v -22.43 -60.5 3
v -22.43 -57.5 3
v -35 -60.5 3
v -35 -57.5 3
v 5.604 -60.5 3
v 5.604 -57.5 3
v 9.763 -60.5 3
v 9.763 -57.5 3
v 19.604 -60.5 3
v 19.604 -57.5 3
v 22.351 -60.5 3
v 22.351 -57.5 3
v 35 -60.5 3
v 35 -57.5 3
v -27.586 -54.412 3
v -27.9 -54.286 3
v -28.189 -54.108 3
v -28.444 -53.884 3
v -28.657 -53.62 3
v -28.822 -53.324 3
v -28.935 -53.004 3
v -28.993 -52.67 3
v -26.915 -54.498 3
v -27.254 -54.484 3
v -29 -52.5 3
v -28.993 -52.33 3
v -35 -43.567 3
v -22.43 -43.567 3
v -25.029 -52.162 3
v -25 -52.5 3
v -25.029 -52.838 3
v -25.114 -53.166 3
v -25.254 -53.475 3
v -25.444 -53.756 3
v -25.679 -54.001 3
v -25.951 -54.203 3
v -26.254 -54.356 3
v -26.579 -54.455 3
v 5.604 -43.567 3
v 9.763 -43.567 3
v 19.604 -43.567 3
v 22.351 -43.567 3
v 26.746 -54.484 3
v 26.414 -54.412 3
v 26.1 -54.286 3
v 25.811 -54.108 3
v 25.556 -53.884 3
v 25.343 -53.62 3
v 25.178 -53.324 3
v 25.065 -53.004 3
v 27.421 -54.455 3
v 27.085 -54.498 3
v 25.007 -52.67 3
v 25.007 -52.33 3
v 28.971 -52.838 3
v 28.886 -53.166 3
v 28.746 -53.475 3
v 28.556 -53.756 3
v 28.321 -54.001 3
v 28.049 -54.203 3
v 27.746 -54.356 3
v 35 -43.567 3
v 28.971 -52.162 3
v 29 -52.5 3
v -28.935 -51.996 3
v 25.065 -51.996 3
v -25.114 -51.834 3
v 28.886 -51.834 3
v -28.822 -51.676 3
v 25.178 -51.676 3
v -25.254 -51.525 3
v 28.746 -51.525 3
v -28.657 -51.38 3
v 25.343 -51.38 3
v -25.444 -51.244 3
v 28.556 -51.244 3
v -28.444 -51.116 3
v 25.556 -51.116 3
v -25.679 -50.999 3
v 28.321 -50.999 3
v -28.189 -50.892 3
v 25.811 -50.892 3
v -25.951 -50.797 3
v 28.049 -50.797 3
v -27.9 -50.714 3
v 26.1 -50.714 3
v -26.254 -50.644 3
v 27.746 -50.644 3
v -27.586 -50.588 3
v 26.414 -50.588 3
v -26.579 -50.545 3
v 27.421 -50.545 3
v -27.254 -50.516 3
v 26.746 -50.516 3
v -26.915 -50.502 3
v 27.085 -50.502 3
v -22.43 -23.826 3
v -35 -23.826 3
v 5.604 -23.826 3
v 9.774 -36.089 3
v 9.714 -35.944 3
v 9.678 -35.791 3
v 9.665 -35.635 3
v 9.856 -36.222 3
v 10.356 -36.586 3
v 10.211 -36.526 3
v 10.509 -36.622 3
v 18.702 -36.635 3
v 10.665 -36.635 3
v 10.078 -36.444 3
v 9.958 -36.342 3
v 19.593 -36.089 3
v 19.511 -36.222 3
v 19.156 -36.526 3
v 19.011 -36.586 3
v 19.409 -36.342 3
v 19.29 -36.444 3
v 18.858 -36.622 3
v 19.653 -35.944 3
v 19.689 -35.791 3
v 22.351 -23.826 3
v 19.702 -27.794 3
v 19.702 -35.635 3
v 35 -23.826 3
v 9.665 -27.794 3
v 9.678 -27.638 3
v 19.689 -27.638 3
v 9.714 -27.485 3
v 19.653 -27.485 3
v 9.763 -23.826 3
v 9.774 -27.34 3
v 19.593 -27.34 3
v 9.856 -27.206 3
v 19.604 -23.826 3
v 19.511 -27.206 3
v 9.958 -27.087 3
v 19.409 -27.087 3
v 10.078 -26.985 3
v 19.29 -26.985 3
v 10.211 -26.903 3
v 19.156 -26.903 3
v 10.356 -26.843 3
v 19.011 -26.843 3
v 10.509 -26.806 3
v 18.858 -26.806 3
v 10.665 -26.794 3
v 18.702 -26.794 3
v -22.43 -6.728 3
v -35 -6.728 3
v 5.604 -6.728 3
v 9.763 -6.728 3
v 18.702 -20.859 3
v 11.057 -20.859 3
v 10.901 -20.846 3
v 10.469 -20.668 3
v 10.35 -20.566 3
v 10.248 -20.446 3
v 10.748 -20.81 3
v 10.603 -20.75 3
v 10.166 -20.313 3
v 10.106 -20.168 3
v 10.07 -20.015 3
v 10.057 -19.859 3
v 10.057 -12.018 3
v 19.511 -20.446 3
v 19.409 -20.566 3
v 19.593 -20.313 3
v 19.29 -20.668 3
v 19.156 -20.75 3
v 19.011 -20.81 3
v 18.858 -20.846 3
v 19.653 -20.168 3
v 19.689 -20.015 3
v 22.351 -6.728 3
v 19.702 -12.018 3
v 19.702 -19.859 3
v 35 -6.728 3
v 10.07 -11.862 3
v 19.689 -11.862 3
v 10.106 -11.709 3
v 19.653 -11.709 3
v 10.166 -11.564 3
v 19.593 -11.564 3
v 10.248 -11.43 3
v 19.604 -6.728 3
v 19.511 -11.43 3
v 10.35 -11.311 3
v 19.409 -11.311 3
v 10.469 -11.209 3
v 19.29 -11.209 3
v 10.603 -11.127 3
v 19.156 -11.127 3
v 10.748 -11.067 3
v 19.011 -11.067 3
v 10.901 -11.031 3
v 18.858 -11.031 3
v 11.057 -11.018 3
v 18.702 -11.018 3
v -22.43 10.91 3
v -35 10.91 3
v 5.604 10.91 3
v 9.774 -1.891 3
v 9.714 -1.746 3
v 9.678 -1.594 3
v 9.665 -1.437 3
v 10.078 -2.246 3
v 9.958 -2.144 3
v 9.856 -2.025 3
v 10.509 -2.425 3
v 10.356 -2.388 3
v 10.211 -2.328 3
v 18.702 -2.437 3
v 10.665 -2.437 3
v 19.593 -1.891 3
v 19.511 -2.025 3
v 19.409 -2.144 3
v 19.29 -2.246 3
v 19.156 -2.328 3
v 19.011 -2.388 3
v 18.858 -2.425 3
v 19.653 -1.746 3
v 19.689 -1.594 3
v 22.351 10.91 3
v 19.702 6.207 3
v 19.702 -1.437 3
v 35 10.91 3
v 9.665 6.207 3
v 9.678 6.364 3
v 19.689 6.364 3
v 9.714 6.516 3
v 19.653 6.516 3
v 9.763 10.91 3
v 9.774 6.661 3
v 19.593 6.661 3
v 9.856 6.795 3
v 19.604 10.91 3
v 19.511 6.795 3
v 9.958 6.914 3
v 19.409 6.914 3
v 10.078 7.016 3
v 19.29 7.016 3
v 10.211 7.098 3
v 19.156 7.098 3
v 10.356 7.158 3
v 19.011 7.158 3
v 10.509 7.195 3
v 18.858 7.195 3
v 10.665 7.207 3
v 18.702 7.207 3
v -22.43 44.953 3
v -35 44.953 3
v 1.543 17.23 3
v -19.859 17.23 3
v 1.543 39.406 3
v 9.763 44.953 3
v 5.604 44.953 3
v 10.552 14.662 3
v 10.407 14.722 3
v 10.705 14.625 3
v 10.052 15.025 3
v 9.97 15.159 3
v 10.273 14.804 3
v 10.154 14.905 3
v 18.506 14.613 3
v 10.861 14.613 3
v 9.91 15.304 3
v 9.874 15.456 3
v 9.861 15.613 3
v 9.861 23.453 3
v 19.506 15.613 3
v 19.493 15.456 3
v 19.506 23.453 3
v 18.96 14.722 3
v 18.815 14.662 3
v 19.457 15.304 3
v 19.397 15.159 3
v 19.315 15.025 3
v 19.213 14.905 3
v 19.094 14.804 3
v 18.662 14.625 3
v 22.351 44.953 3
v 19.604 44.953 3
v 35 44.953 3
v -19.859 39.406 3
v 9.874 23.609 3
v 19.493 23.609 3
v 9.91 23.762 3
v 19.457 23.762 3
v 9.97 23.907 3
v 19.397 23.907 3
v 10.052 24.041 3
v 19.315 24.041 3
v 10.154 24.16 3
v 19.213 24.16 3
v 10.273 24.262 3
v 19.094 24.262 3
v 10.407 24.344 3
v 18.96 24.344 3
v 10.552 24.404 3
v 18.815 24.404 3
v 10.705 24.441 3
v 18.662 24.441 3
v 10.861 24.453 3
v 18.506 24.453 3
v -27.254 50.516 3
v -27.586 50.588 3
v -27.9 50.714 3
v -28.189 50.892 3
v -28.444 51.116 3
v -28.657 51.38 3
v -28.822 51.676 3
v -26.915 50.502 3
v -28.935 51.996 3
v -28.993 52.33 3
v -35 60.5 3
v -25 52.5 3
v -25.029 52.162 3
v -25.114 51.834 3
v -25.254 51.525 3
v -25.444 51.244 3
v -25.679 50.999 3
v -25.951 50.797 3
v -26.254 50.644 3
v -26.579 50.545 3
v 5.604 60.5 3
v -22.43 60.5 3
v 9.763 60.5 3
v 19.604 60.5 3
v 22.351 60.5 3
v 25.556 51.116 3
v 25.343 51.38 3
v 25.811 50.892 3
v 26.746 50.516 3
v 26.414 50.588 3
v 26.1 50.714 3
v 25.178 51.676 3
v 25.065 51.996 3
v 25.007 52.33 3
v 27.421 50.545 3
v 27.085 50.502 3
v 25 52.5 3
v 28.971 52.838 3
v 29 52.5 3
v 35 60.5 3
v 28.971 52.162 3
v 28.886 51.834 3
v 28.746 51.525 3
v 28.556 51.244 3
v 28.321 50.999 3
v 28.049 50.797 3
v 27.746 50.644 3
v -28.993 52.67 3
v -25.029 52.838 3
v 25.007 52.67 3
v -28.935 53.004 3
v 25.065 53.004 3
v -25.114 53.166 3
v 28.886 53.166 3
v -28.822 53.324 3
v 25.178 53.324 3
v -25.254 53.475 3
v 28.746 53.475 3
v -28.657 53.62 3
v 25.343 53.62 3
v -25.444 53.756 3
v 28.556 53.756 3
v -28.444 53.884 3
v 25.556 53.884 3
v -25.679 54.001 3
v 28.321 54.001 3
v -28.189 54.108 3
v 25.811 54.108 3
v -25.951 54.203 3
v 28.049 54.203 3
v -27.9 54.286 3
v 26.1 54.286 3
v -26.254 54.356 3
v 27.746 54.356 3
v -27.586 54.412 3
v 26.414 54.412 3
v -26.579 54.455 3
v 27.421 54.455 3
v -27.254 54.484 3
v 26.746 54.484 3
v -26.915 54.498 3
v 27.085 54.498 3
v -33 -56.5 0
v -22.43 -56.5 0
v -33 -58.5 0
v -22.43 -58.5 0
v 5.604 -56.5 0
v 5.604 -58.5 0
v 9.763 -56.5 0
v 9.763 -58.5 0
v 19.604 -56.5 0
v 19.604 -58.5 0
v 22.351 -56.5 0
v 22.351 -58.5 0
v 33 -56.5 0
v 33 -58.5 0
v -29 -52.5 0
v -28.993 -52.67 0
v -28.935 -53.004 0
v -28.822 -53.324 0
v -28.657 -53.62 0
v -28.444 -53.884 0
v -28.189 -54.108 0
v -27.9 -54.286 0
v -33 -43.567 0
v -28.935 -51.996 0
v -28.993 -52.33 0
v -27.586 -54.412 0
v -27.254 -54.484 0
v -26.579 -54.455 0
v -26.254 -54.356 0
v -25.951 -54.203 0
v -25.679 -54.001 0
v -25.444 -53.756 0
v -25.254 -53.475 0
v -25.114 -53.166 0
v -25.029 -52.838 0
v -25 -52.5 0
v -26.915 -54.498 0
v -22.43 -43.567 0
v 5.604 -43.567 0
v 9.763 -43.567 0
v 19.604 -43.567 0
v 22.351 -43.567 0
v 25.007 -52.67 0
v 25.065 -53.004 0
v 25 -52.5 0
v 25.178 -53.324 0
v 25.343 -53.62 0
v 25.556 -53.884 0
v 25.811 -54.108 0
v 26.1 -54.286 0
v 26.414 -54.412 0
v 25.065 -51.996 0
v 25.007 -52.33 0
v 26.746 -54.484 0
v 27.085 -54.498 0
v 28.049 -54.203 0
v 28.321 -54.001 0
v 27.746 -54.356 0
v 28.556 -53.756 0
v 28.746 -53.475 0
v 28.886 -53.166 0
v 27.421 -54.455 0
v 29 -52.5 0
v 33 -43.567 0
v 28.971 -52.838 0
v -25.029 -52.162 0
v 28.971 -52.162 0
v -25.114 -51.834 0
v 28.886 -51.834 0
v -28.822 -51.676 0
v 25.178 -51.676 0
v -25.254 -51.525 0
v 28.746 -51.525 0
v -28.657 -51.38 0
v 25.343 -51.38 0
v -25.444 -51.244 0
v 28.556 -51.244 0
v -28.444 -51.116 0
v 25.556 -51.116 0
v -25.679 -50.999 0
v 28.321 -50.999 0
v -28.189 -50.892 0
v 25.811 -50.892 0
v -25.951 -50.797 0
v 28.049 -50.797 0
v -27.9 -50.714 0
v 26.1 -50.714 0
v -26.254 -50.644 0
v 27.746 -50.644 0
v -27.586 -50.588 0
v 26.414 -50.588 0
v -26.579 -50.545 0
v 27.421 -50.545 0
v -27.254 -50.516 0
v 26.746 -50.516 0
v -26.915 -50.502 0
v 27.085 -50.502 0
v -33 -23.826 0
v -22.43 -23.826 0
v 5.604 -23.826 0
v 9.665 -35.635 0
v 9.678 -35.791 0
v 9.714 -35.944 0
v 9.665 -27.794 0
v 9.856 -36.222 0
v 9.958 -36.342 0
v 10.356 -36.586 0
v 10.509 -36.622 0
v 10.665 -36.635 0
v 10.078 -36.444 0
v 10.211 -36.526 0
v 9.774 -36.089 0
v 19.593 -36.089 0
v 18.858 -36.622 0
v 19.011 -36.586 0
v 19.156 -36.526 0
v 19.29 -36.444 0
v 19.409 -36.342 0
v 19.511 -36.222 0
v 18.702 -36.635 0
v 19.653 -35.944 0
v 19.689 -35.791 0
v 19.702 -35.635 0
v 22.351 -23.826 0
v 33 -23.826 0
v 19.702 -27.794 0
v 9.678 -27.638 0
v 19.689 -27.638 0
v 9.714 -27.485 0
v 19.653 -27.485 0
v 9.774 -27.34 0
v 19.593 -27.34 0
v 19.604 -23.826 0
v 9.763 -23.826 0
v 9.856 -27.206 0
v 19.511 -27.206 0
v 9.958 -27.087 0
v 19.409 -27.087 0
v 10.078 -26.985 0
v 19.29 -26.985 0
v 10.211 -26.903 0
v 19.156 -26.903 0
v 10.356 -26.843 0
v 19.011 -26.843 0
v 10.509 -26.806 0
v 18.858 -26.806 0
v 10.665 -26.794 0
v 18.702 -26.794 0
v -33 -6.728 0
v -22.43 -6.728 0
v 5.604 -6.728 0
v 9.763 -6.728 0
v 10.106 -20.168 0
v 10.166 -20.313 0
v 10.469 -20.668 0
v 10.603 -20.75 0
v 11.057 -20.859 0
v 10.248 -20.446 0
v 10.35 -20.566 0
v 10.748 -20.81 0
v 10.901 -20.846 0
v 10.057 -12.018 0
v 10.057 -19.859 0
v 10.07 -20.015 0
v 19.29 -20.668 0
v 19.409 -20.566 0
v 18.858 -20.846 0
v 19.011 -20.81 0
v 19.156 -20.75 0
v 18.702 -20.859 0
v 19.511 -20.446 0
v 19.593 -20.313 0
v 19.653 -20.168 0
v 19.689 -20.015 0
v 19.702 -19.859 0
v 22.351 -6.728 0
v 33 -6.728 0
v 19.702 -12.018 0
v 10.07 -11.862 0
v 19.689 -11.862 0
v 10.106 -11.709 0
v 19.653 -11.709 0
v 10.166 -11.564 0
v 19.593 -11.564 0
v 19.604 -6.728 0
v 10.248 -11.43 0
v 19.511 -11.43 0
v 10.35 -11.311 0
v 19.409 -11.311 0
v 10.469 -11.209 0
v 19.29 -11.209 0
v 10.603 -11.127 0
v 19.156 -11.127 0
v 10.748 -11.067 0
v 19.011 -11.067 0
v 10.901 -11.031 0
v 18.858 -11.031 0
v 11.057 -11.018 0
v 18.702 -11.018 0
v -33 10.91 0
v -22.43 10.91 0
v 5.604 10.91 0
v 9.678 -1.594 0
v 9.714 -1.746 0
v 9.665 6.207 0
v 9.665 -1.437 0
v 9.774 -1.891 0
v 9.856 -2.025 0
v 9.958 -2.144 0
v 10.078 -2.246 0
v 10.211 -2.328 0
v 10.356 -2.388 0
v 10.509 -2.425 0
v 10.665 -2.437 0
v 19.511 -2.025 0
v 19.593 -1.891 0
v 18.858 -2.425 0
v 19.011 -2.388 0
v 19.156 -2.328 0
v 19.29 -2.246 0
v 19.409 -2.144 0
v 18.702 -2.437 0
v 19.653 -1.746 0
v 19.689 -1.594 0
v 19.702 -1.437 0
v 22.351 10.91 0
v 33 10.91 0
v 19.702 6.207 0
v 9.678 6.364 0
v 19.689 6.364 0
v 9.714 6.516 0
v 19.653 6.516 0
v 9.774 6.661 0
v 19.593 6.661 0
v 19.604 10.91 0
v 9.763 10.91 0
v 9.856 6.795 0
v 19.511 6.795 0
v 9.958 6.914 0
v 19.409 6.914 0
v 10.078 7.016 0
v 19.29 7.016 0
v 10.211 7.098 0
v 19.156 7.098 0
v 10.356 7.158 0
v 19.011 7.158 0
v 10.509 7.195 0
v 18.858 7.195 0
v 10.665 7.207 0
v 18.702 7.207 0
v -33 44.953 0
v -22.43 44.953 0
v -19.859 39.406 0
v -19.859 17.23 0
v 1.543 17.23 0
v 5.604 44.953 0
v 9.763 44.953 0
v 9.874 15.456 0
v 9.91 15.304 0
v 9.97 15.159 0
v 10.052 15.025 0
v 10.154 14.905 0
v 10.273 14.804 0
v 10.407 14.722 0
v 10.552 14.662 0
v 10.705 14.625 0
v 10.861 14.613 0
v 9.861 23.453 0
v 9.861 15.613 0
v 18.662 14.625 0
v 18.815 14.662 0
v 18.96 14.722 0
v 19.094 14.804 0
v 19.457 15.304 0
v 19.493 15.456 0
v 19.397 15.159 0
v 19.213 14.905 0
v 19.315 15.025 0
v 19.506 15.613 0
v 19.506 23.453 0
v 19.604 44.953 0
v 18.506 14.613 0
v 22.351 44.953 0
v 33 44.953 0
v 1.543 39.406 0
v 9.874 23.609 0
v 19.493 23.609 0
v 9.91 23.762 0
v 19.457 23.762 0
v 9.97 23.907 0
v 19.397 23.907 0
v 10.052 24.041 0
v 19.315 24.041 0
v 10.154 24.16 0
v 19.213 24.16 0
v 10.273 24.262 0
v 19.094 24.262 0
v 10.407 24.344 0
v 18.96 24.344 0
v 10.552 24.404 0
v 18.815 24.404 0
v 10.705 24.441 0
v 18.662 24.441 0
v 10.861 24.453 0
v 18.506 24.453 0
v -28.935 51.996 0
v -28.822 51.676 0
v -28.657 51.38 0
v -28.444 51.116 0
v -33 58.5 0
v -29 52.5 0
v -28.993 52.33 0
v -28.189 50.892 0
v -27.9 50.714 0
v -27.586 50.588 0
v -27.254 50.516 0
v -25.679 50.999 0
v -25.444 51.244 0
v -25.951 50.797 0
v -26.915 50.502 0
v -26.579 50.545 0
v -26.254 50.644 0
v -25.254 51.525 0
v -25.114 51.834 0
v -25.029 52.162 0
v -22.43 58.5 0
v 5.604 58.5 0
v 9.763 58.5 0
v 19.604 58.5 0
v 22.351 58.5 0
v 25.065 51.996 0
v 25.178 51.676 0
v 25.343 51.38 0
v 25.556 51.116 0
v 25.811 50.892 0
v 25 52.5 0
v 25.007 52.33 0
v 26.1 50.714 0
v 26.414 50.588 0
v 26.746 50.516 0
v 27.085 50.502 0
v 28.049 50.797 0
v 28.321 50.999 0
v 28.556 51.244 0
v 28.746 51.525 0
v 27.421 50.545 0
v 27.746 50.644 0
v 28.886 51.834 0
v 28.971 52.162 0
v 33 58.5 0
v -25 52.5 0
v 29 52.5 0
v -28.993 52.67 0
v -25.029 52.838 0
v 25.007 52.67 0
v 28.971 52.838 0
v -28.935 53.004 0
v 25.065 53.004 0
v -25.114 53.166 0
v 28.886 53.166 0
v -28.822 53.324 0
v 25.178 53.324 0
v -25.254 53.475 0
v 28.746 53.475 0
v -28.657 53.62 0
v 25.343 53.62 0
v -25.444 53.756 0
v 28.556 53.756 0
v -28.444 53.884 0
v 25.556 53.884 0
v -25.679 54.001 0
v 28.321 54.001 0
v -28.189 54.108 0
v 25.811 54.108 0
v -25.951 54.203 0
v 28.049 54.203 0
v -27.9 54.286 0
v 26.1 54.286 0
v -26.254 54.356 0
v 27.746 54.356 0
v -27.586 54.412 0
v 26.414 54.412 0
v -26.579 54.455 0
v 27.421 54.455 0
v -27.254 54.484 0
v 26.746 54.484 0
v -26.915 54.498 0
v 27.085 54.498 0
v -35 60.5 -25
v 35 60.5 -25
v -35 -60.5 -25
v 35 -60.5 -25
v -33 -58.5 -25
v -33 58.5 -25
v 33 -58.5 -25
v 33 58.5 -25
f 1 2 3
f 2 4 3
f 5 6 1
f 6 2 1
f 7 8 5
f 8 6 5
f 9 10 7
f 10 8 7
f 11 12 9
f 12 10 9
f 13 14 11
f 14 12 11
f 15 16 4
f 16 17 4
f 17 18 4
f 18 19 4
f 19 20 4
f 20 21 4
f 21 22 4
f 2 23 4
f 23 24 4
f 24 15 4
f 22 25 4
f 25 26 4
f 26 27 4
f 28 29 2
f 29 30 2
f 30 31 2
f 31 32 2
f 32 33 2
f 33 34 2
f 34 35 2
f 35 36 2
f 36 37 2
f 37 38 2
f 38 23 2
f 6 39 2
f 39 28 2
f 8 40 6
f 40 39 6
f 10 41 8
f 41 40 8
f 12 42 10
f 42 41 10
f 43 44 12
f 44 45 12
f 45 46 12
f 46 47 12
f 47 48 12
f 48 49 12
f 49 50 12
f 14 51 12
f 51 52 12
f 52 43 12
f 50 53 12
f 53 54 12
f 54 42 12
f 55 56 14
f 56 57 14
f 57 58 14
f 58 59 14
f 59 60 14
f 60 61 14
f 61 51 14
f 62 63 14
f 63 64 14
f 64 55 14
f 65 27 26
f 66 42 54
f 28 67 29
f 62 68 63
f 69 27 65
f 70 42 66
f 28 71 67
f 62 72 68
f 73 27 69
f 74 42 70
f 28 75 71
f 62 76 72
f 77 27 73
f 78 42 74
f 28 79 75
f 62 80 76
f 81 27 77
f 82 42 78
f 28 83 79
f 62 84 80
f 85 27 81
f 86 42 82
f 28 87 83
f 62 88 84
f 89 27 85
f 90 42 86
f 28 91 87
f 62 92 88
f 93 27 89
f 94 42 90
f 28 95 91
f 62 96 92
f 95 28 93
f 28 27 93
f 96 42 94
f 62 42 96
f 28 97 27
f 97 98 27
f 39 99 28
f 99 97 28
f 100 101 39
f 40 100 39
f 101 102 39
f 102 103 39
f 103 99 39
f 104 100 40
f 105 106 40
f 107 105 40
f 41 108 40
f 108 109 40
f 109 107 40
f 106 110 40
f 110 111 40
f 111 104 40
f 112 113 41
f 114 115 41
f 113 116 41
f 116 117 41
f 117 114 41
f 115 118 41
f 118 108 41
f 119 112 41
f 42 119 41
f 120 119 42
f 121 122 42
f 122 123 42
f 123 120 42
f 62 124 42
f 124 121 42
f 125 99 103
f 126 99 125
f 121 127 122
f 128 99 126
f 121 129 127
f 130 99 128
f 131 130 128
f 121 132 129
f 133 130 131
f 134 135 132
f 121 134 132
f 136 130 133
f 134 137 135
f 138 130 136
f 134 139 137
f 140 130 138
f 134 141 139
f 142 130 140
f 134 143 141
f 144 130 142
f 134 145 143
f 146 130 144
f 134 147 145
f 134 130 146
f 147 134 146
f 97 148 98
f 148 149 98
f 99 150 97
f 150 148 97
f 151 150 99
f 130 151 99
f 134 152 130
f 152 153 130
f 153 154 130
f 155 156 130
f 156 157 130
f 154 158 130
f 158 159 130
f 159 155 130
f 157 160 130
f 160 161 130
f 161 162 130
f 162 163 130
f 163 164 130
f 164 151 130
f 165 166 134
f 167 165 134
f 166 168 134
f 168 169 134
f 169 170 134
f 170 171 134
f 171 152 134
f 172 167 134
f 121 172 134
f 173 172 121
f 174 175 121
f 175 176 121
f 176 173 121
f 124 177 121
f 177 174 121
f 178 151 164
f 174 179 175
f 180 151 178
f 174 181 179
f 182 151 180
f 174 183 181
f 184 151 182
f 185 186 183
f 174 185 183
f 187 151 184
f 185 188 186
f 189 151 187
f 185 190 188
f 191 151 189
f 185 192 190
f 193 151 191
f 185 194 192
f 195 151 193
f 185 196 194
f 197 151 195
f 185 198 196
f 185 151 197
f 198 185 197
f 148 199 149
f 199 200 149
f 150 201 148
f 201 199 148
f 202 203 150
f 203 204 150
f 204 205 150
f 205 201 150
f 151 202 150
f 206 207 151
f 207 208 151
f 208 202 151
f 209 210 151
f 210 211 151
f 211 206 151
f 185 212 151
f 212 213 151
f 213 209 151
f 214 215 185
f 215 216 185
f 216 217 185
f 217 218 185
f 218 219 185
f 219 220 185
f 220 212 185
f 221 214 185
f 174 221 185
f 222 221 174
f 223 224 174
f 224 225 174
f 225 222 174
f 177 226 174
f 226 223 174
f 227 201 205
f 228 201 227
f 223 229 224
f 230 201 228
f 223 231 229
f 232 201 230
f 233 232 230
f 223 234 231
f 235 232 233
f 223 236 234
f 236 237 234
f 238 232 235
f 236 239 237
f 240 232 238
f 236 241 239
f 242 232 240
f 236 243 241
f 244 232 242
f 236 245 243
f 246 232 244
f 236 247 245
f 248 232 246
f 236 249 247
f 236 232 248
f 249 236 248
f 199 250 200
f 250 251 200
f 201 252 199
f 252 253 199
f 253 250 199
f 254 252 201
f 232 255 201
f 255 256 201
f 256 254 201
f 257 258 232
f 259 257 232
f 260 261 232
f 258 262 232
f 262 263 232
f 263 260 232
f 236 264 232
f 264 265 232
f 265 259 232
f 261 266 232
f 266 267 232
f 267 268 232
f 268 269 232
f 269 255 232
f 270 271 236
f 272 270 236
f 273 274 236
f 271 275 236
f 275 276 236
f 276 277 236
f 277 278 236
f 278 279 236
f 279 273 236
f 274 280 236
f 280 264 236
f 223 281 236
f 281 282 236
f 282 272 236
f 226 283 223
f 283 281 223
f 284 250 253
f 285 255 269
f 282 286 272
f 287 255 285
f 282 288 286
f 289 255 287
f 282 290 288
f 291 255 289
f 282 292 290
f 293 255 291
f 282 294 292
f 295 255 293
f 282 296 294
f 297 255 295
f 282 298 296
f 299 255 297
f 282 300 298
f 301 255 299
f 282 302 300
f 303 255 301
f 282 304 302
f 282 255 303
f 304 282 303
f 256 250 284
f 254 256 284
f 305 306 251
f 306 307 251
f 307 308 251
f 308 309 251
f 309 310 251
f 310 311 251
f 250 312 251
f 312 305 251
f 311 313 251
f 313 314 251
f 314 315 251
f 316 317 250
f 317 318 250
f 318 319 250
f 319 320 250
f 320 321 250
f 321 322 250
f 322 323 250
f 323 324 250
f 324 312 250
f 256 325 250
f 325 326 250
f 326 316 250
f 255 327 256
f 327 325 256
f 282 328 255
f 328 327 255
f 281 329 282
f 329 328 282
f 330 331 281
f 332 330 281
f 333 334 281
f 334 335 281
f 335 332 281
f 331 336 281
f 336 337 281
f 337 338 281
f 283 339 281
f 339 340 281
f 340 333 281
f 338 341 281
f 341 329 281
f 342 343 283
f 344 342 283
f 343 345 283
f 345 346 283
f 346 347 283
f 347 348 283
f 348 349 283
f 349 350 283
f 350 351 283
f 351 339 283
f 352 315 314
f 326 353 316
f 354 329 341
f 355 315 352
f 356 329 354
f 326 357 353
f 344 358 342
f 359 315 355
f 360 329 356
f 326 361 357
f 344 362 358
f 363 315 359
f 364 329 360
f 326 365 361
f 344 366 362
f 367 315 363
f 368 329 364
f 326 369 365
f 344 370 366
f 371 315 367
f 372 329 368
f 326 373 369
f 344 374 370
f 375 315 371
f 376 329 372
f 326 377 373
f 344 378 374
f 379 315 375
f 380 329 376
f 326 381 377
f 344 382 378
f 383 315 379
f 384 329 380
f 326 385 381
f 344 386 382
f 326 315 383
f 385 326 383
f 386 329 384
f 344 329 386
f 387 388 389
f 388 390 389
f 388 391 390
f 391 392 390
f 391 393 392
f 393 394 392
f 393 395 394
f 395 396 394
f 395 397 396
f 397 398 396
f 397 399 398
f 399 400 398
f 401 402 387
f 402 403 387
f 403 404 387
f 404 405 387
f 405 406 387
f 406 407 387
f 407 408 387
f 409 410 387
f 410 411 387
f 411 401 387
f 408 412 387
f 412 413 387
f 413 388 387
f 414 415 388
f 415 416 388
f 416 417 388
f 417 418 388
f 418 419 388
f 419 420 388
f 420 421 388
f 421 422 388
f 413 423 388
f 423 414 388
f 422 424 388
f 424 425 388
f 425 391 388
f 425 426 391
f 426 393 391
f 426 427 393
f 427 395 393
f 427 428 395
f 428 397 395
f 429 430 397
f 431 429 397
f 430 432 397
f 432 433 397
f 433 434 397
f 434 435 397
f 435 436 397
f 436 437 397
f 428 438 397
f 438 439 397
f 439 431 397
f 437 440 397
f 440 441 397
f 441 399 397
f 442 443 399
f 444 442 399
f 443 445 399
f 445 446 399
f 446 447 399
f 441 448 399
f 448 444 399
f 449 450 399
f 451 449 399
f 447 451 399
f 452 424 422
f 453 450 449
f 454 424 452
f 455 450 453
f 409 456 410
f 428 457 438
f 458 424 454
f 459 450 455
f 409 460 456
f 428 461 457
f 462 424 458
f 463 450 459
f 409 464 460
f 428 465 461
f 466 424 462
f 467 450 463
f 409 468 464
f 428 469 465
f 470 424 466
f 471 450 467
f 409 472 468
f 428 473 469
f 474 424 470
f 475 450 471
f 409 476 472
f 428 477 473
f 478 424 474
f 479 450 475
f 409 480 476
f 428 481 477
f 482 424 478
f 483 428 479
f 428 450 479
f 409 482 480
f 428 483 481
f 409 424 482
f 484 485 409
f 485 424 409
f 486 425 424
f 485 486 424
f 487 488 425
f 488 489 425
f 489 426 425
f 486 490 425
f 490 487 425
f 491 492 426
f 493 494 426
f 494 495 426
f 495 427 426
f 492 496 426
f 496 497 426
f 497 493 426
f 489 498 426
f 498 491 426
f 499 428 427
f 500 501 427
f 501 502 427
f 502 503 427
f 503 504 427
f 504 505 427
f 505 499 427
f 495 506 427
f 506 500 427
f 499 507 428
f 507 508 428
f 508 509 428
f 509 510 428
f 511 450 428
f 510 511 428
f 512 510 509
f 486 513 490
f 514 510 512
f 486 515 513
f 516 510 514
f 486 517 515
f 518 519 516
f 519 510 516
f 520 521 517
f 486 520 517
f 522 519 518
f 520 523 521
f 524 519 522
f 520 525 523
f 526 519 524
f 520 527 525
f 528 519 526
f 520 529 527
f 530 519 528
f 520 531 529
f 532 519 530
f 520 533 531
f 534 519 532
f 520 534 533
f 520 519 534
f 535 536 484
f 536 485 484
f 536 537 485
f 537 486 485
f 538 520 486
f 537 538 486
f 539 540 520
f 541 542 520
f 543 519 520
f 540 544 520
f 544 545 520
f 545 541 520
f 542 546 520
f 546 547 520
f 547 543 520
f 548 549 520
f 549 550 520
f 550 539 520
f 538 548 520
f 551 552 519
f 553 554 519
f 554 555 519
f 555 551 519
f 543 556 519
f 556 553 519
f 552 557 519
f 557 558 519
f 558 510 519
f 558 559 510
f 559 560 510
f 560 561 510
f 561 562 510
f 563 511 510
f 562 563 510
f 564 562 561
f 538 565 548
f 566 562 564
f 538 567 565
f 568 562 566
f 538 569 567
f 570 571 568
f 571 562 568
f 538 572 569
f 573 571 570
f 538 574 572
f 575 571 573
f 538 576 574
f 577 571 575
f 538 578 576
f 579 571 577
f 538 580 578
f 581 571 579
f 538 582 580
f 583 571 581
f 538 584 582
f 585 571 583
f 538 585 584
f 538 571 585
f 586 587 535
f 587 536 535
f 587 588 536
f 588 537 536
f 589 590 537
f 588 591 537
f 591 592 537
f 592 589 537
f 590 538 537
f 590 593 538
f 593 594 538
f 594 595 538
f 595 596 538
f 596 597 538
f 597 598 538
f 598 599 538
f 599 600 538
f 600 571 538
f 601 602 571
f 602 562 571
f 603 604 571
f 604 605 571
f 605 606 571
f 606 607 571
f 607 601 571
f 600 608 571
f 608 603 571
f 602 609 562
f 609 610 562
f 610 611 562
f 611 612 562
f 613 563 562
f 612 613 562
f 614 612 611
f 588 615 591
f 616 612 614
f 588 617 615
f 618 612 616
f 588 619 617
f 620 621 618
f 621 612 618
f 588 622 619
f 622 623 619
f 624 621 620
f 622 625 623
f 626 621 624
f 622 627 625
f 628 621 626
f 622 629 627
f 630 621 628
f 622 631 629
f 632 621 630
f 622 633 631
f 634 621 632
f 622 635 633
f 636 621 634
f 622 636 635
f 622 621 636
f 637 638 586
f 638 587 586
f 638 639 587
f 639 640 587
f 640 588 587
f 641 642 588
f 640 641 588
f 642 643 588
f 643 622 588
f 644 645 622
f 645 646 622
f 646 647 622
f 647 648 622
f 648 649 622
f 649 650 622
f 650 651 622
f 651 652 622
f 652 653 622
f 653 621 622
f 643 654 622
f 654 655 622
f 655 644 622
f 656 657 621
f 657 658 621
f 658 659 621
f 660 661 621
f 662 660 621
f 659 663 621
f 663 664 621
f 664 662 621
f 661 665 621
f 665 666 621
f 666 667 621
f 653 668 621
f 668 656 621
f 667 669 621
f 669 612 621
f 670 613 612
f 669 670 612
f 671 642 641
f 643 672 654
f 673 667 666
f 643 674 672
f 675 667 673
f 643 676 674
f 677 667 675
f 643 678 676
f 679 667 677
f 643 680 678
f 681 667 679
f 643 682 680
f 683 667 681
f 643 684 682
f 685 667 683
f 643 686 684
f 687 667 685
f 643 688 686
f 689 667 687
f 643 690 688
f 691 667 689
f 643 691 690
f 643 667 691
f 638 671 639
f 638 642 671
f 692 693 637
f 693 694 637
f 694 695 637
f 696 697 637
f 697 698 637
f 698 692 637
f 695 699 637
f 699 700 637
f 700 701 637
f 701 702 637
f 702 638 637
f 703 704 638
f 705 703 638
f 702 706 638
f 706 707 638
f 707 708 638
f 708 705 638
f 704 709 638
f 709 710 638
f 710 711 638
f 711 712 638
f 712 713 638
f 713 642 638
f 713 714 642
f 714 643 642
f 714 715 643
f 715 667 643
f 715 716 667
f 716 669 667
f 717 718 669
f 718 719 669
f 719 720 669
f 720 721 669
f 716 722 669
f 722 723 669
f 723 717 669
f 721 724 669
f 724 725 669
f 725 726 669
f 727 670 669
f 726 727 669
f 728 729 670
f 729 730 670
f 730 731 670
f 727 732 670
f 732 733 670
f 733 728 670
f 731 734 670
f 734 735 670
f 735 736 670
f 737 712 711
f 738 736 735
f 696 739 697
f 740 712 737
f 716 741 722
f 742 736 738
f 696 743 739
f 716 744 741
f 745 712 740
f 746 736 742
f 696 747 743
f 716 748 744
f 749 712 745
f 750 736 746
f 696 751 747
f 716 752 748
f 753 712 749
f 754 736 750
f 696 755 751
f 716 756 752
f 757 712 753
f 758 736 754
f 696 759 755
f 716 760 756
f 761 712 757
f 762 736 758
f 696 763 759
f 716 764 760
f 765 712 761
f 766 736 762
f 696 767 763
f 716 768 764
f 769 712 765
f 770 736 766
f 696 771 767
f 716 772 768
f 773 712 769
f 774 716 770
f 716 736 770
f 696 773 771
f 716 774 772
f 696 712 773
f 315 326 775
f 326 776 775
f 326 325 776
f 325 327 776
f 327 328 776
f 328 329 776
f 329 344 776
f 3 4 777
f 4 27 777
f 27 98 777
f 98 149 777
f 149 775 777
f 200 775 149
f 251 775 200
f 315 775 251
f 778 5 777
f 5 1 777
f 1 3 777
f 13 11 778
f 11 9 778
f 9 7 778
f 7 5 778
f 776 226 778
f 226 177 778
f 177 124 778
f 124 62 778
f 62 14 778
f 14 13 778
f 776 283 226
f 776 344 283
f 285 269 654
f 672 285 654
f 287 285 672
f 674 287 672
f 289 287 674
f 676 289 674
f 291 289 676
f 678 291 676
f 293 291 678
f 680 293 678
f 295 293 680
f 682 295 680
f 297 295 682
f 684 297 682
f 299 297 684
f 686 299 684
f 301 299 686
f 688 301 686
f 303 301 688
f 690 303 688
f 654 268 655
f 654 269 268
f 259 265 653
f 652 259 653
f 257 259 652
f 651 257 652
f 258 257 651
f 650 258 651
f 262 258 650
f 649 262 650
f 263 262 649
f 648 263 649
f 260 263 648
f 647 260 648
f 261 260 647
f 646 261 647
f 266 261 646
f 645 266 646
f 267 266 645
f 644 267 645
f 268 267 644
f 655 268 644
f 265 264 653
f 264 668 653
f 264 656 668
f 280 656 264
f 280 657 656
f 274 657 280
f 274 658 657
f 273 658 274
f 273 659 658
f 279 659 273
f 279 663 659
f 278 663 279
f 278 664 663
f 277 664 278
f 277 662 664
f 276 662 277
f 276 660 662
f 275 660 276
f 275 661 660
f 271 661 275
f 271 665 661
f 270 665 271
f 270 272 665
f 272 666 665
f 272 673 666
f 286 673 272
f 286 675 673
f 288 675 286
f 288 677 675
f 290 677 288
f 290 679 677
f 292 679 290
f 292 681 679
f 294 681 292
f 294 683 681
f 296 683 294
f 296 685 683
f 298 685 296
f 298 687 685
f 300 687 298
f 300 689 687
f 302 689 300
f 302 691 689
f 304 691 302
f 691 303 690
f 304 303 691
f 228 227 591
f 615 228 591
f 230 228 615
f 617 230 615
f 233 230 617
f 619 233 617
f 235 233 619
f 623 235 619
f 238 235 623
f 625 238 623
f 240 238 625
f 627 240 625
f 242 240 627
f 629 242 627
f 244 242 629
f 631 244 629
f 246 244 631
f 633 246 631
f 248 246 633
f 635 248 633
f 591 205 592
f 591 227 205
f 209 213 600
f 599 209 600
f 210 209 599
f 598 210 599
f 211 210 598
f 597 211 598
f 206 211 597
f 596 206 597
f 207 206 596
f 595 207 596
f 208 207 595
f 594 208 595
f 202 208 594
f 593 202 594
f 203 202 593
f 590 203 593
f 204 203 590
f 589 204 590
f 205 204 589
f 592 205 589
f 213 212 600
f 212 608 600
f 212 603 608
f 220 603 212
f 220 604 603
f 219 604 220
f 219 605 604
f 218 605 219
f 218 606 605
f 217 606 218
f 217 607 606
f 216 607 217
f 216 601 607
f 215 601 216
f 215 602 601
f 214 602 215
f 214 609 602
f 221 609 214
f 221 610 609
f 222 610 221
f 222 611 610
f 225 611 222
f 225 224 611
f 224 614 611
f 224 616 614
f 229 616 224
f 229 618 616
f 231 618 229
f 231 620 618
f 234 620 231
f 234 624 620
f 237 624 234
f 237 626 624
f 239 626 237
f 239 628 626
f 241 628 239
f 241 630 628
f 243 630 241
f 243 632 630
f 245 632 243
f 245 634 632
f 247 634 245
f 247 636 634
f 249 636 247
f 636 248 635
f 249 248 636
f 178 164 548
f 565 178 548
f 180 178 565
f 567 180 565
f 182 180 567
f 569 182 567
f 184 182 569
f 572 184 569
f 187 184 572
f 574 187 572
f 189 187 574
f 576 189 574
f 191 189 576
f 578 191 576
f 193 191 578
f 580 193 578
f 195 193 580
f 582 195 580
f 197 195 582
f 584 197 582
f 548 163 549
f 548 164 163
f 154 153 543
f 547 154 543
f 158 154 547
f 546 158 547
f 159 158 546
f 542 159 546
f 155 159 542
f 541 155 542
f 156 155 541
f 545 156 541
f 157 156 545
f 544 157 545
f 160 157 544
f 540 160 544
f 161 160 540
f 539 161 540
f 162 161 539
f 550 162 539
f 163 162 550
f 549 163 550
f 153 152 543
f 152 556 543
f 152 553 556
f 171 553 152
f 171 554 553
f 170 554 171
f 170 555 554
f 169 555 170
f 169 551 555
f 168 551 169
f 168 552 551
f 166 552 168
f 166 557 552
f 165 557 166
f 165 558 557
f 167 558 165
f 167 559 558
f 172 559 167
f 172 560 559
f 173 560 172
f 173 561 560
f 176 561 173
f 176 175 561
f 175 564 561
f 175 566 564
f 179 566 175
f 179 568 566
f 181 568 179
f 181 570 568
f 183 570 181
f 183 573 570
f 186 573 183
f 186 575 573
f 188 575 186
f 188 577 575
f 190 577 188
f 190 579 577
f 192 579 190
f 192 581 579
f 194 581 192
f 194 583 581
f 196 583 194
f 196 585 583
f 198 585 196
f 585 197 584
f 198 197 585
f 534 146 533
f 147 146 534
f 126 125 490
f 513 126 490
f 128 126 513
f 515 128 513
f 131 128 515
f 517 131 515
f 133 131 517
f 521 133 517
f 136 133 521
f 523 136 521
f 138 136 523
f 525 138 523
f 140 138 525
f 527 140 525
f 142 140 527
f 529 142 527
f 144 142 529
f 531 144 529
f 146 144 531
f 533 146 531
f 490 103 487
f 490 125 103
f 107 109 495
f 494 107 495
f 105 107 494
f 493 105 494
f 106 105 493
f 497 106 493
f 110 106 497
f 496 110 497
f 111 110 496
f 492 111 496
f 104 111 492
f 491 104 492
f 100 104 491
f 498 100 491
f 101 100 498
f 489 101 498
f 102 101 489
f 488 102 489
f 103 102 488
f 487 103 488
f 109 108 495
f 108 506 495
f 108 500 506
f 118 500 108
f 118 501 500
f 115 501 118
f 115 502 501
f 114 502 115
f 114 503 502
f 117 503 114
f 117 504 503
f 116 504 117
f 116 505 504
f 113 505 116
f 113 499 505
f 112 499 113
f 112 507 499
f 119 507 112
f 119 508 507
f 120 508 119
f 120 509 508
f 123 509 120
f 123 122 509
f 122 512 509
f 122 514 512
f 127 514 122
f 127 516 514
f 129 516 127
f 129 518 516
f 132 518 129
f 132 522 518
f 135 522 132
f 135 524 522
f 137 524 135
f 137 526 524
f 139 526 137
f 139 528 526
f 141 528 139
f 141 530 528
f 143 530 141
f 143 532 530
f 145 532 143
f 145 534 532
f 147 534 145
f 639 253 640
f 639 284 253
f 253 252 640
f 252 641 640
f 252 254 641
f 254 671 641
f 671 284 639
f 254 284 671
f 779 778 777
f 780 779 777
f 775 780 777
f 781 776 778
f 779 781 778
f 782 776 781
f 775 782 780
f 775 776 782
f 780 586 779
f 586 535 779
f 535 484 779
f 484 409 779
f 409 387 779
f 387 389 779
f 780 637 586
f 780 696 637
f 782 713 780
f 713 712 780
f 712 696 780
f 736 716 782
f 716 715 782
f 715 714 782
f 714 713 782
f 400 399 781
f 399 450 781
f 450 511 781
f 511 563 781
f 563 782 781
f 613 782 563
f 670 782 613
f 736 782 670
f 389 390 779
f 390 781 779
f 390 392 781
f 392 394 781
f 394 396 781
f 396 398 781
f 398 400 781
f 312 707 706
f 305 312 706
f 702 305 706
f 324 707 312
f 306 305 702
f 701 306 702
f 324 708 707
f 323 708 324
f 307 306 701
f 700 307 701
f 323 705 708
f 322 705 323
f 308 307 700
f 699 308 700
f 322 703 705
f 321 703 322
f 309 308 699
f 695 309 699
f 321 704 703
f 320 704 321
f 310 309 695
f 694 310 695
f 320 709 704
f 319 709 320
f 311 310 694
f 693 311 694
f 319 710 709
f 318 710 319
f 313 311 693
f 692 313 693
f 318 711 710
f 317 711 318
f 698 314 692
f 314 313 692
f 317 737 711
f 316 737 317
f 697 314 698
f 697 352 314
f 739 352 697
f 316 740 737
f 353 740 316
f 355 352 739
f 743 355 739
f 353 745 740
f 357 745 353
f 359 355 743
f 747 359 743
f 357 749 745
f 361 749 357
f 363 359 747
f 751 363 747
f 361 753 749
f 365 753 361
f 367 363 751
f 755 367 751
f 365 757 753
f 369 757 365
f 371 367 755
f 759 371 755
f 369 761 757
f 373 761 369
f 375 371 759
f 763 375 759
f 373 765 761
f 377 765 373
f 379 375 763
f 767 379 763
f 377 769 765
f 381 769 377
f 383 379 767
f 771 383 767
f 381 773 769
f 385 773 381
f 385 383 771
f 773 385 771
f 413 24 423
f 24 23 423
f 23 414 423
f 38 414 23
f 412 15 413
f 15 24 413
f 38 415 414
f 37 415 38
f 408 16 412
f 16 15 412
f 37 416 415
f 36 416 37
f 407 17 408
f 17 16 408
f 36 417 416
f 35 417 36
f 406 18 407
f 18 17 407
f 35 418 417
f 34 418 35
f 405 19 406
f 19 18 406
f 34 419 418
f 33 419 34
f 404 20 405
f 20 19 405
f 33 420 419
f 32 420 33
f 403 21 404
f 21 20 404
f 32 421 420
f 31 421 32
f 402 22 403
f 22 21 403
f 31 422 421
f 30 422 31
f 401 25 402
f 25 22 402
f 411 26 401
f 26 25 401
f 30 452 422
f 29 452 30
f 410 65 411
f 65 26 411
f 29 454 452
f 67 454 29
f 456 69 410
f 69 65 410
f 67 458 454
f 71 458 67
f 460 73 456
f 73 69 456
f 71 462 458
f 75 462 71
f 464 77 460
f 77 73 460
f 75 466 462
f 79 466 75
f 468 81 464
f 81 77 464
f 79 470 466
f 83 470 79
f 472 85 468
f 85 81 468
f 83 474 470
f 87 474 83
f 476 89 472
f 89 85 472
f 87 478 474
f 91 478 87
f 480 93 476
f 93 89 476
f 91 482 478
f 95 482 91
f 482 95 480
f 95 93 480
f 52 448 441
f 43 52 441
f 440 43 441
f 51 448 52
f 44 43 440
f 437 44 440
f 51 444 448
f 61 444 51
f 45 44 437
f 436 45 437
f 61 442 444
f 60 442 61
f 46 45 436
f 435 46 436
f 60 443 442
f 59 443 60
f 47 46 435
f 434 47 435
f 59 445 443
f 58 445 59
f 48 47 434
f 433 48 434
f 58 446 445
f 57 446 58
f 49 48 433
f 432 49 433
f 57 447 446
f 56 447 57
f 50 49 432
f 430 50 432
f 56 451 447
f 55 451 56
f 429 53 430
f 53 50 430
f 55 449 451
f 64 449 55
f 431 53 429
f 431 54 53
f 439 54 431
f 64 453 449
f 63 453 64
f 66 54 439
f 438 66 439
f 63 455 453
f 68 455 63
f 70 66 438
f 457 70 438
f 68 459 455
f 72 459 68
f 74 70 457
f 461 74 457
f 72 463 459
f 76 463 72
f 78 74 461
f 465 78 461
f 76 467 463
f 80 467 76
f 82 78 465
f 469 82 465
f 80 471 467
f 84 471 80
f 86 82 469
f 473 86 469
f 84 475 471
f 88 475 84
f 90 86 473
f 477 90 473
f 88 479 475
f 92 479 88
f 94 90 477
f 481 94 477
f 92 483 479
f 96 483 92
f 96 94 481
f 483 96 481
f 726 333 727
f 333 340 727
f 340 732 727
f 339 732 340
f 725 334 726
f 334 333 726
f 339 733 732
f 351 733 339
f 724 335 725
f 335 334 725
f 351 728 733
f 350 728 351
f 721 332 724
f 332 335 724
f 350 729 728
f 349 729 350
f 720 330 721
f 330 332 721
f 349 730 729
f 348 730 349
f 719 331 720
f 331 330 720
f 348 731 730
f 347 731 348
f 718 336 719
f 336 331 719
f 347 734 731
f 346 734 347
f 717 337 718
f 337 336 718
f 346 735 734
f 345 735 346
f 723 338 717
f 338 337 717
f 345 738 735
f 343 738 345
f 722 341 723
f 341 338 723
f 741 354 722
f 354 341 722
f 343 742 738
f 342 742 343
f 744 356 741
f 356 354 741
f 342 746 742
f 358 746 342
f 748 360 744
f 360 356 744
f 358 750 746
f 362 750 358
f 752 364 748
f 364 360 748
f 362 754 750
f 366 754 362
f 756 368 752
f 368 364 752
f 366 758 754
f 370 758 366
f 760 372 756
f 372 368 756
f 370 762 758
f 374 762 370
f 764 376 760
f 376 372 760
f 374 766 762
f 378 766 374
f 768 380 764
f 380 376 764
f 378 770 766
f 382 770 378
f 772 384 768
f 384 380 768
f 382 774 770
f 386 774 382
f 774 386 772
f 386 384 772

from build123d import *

# Parameters (mm, degrees)
SALIENTE_EXTRUIR1_OUTLINE_W   = 70
SALIENTE_EXTRUIR1_OUTLINE_H   = 121
SALIENTE_EXTRUIR1_OUTLINE_W_2 = 21.402751614
SALIENTE_EXTRUIR1_OUTLINE_H_2 = 22.176249264
SALIENTE_EXTRUIR1_DEPTH       = 3
CROQUIS3_W                    = 70
CROQUIS3_H                    = 121
CROQUIS3_W_2                  = 66
CROQUIS3_H_2                  = 117
SALIENTE_EXTRUIR2_DEPTH       = 25
CROQUIS6_R                    = 2
CORTAR_EXTRUIR1_DEPTH         = 10


# Read off the part's stored shape, not the designer's step: Saliente-Extruir1
with BuildPart() as part:
    # Saliente-Extruir1 outline → Saliente-Extruir1 (new body)
    with BuildSketch(Plane.XY):
        Rectangle(SALIENTE_EXTRUIR1_OUTLINE_W, SALIENTE_EXTRUIR1_OUTLINE_H)
        with BuildLine():
            Line((10.665295135, -26.794102385), (18.701771575, -26.794102385))
            ThreePointArc((18.701771575, -26.794102385), (19.408878356, -27.086995604), (19.701771575, -27.794102385))
            Line((19.701771575, -27.794102385), (19.701771575, -35.634526795))
            ThreePointArc((19.701771575, -35.634526795), (19.408878356, -36.341633576), (18.701771575, -36.634526795))
            Line((18.701771575, -36.634526795), (10.665295135, -36.634526795))
            ThreePointArc((10.665295135, -36.634526795), (9.958188354, -36.341633576), (9.665295135, -35.634526795))
            Line((9.665295135, -35.634526795), (9.665295135, -27.794102385))
            ThreePointArc((9.665295135, -27.794102385), (9.958188354, -27.086995604), (10.665295135, -26.794102385))
        make_face(mode=Mode.SUBTRACT)
        with BuildLine():
            Line((10.057242416, -19.858648736), (10.057242416, -12.018224326))
            ThreePointArc((10.057242416, -12.018224326), (10.350135635, -11.311117545), (11.057242416, -11.018224326))
            Line((11.057242416, -11.018224326), (18.701771575, -11.018224326))
            ThreePointArc((18.701771575, -11.018224326), (19.408878356, -11.311117545), (19.701771575, -12.018224326))
            Line((19.701771575, -12.018224326), (19.701771575, -19.858648736))
            ThreePointArc((19.701771575, -19.858648736), (19.408878356, -20.565755517), (18.701771575, -20.858648736))
            Line((18.701771575, -20.858648736), (11.057242416, -20.858648736))
            ThreePointArc((11.057242416, -20.858648736), (10.350135635, -20.565755517), (10.057242416, -19.858648736))
        make_face(mode=Mode.SUBTRACT)
        with Locations((-9.158031826, 28.317647119)):
            Rectangle(SALIENTE_EXTRUIR1_OUTLINE_W_2, SALIENTE_EXTRUIR1_OUTLINE_H_2, mode=Mode.SUBTRACT)
        with BuildLine():
            Line((9.665295135, -1.437126531), (9.665295135, 6.207324239))
            ThreePointArc((9.665295135, 6.207324239), (9.958188354, 6.91443102), (10.665295135, 7.207324239))
            Line((10.665295135, 7.207324239), (18.701771575, 7.207324239))
            ThreePointArc((18.701771575, 7.207324239), (19.408878356, 6.91443102), (19.701771575, 6.207324239))
            Line((19.701771575, 6.207324239), (19.701771575, -1.437126531))
            ThreePointArc((19.701771575, -1.437126531), (19.408878356, -2.144233312), (18.701771575, -2.437126531))
            Line((18.701771575, -2.437126531), (10.665295135, -2.437126531))
            ThreePointArc((10.665295135, -2.437126531), (9.958188354, -2.144233312), (9.665295135, -1.437126531))
        make_face(mode=Mode.SUBTRACT)
        with BuildLine():
            Line((9.861268776, 15.612580192), (9.861268776, 23.453004601))
            ThreePointArc((9.861268776, 23.453004601), (10.154161995, 24.160111382), (10.861268776, 24.453004601))
            Line((10.861268776, 24.453004601), (18.505797934, 24.453004601))
            ThreePointArc((18.505797934, 24.453004601), (19.212904715, 24.160111382), (19.505797934, 23.453004601))
            Line((19.505797934, 23.453004601), (19.505797934, 15.612580192))
            ThreePointArc((19.505797934, 15.612580192), (19.212904715, 14.905473411), (18.505797934, 14.612580192))
            Line((18.505797934, 14.612580192), (10.861268776, 14.612580192))
            ThreePointArc((10.861268776, 14.612580192), (10.154161994, 14.90547341), (9.861268776, 15.612580192))
        make_face(mode=Mode.SUBTRACT)
    extrude(amount=SALIENTE_EXTRUIR1_DEPTH)

    # Croquis3 → Saliente-Extruir2 (add)
    with BuildSketch(Plane(origin=(0, 0, 0), x_dir=(-1, 0, 0), z_dir=(0, 0, -1))):
        Rectangle(CROQUIS3_W, CROQUIS3_H)
        Rectangle(CROQUIS3_W_2, CROQUIS3_H_2, mode=Mode.SUBTRACT)
    extrude(amount=SALIENTE_EXTRUIR2_DEPTH)

    # Croquis6 → Cortar-Extruir1 (cut)
    with BuildSketch(Plane.XY.offset(3)):
        with Locations((-27, 52.5)):
            Circle(CROQUIS6_R)
        with Locations(Location((-27, -52.5, 0), (0, 0, 180))):
            Circle(CROQUIS6_R)
        with Locations((27, -52.5)):
            Circle(CROQUIS6_R)
        with Locations(Location((27, 52.5, 0), (0, 0, 180))):
            Circle(CROQUIS6_R)
    extrude(amount=-CORTAR_EXTRUIR1_DEPTH, mode=Mode.SUBTRACT)


solid = part.part
